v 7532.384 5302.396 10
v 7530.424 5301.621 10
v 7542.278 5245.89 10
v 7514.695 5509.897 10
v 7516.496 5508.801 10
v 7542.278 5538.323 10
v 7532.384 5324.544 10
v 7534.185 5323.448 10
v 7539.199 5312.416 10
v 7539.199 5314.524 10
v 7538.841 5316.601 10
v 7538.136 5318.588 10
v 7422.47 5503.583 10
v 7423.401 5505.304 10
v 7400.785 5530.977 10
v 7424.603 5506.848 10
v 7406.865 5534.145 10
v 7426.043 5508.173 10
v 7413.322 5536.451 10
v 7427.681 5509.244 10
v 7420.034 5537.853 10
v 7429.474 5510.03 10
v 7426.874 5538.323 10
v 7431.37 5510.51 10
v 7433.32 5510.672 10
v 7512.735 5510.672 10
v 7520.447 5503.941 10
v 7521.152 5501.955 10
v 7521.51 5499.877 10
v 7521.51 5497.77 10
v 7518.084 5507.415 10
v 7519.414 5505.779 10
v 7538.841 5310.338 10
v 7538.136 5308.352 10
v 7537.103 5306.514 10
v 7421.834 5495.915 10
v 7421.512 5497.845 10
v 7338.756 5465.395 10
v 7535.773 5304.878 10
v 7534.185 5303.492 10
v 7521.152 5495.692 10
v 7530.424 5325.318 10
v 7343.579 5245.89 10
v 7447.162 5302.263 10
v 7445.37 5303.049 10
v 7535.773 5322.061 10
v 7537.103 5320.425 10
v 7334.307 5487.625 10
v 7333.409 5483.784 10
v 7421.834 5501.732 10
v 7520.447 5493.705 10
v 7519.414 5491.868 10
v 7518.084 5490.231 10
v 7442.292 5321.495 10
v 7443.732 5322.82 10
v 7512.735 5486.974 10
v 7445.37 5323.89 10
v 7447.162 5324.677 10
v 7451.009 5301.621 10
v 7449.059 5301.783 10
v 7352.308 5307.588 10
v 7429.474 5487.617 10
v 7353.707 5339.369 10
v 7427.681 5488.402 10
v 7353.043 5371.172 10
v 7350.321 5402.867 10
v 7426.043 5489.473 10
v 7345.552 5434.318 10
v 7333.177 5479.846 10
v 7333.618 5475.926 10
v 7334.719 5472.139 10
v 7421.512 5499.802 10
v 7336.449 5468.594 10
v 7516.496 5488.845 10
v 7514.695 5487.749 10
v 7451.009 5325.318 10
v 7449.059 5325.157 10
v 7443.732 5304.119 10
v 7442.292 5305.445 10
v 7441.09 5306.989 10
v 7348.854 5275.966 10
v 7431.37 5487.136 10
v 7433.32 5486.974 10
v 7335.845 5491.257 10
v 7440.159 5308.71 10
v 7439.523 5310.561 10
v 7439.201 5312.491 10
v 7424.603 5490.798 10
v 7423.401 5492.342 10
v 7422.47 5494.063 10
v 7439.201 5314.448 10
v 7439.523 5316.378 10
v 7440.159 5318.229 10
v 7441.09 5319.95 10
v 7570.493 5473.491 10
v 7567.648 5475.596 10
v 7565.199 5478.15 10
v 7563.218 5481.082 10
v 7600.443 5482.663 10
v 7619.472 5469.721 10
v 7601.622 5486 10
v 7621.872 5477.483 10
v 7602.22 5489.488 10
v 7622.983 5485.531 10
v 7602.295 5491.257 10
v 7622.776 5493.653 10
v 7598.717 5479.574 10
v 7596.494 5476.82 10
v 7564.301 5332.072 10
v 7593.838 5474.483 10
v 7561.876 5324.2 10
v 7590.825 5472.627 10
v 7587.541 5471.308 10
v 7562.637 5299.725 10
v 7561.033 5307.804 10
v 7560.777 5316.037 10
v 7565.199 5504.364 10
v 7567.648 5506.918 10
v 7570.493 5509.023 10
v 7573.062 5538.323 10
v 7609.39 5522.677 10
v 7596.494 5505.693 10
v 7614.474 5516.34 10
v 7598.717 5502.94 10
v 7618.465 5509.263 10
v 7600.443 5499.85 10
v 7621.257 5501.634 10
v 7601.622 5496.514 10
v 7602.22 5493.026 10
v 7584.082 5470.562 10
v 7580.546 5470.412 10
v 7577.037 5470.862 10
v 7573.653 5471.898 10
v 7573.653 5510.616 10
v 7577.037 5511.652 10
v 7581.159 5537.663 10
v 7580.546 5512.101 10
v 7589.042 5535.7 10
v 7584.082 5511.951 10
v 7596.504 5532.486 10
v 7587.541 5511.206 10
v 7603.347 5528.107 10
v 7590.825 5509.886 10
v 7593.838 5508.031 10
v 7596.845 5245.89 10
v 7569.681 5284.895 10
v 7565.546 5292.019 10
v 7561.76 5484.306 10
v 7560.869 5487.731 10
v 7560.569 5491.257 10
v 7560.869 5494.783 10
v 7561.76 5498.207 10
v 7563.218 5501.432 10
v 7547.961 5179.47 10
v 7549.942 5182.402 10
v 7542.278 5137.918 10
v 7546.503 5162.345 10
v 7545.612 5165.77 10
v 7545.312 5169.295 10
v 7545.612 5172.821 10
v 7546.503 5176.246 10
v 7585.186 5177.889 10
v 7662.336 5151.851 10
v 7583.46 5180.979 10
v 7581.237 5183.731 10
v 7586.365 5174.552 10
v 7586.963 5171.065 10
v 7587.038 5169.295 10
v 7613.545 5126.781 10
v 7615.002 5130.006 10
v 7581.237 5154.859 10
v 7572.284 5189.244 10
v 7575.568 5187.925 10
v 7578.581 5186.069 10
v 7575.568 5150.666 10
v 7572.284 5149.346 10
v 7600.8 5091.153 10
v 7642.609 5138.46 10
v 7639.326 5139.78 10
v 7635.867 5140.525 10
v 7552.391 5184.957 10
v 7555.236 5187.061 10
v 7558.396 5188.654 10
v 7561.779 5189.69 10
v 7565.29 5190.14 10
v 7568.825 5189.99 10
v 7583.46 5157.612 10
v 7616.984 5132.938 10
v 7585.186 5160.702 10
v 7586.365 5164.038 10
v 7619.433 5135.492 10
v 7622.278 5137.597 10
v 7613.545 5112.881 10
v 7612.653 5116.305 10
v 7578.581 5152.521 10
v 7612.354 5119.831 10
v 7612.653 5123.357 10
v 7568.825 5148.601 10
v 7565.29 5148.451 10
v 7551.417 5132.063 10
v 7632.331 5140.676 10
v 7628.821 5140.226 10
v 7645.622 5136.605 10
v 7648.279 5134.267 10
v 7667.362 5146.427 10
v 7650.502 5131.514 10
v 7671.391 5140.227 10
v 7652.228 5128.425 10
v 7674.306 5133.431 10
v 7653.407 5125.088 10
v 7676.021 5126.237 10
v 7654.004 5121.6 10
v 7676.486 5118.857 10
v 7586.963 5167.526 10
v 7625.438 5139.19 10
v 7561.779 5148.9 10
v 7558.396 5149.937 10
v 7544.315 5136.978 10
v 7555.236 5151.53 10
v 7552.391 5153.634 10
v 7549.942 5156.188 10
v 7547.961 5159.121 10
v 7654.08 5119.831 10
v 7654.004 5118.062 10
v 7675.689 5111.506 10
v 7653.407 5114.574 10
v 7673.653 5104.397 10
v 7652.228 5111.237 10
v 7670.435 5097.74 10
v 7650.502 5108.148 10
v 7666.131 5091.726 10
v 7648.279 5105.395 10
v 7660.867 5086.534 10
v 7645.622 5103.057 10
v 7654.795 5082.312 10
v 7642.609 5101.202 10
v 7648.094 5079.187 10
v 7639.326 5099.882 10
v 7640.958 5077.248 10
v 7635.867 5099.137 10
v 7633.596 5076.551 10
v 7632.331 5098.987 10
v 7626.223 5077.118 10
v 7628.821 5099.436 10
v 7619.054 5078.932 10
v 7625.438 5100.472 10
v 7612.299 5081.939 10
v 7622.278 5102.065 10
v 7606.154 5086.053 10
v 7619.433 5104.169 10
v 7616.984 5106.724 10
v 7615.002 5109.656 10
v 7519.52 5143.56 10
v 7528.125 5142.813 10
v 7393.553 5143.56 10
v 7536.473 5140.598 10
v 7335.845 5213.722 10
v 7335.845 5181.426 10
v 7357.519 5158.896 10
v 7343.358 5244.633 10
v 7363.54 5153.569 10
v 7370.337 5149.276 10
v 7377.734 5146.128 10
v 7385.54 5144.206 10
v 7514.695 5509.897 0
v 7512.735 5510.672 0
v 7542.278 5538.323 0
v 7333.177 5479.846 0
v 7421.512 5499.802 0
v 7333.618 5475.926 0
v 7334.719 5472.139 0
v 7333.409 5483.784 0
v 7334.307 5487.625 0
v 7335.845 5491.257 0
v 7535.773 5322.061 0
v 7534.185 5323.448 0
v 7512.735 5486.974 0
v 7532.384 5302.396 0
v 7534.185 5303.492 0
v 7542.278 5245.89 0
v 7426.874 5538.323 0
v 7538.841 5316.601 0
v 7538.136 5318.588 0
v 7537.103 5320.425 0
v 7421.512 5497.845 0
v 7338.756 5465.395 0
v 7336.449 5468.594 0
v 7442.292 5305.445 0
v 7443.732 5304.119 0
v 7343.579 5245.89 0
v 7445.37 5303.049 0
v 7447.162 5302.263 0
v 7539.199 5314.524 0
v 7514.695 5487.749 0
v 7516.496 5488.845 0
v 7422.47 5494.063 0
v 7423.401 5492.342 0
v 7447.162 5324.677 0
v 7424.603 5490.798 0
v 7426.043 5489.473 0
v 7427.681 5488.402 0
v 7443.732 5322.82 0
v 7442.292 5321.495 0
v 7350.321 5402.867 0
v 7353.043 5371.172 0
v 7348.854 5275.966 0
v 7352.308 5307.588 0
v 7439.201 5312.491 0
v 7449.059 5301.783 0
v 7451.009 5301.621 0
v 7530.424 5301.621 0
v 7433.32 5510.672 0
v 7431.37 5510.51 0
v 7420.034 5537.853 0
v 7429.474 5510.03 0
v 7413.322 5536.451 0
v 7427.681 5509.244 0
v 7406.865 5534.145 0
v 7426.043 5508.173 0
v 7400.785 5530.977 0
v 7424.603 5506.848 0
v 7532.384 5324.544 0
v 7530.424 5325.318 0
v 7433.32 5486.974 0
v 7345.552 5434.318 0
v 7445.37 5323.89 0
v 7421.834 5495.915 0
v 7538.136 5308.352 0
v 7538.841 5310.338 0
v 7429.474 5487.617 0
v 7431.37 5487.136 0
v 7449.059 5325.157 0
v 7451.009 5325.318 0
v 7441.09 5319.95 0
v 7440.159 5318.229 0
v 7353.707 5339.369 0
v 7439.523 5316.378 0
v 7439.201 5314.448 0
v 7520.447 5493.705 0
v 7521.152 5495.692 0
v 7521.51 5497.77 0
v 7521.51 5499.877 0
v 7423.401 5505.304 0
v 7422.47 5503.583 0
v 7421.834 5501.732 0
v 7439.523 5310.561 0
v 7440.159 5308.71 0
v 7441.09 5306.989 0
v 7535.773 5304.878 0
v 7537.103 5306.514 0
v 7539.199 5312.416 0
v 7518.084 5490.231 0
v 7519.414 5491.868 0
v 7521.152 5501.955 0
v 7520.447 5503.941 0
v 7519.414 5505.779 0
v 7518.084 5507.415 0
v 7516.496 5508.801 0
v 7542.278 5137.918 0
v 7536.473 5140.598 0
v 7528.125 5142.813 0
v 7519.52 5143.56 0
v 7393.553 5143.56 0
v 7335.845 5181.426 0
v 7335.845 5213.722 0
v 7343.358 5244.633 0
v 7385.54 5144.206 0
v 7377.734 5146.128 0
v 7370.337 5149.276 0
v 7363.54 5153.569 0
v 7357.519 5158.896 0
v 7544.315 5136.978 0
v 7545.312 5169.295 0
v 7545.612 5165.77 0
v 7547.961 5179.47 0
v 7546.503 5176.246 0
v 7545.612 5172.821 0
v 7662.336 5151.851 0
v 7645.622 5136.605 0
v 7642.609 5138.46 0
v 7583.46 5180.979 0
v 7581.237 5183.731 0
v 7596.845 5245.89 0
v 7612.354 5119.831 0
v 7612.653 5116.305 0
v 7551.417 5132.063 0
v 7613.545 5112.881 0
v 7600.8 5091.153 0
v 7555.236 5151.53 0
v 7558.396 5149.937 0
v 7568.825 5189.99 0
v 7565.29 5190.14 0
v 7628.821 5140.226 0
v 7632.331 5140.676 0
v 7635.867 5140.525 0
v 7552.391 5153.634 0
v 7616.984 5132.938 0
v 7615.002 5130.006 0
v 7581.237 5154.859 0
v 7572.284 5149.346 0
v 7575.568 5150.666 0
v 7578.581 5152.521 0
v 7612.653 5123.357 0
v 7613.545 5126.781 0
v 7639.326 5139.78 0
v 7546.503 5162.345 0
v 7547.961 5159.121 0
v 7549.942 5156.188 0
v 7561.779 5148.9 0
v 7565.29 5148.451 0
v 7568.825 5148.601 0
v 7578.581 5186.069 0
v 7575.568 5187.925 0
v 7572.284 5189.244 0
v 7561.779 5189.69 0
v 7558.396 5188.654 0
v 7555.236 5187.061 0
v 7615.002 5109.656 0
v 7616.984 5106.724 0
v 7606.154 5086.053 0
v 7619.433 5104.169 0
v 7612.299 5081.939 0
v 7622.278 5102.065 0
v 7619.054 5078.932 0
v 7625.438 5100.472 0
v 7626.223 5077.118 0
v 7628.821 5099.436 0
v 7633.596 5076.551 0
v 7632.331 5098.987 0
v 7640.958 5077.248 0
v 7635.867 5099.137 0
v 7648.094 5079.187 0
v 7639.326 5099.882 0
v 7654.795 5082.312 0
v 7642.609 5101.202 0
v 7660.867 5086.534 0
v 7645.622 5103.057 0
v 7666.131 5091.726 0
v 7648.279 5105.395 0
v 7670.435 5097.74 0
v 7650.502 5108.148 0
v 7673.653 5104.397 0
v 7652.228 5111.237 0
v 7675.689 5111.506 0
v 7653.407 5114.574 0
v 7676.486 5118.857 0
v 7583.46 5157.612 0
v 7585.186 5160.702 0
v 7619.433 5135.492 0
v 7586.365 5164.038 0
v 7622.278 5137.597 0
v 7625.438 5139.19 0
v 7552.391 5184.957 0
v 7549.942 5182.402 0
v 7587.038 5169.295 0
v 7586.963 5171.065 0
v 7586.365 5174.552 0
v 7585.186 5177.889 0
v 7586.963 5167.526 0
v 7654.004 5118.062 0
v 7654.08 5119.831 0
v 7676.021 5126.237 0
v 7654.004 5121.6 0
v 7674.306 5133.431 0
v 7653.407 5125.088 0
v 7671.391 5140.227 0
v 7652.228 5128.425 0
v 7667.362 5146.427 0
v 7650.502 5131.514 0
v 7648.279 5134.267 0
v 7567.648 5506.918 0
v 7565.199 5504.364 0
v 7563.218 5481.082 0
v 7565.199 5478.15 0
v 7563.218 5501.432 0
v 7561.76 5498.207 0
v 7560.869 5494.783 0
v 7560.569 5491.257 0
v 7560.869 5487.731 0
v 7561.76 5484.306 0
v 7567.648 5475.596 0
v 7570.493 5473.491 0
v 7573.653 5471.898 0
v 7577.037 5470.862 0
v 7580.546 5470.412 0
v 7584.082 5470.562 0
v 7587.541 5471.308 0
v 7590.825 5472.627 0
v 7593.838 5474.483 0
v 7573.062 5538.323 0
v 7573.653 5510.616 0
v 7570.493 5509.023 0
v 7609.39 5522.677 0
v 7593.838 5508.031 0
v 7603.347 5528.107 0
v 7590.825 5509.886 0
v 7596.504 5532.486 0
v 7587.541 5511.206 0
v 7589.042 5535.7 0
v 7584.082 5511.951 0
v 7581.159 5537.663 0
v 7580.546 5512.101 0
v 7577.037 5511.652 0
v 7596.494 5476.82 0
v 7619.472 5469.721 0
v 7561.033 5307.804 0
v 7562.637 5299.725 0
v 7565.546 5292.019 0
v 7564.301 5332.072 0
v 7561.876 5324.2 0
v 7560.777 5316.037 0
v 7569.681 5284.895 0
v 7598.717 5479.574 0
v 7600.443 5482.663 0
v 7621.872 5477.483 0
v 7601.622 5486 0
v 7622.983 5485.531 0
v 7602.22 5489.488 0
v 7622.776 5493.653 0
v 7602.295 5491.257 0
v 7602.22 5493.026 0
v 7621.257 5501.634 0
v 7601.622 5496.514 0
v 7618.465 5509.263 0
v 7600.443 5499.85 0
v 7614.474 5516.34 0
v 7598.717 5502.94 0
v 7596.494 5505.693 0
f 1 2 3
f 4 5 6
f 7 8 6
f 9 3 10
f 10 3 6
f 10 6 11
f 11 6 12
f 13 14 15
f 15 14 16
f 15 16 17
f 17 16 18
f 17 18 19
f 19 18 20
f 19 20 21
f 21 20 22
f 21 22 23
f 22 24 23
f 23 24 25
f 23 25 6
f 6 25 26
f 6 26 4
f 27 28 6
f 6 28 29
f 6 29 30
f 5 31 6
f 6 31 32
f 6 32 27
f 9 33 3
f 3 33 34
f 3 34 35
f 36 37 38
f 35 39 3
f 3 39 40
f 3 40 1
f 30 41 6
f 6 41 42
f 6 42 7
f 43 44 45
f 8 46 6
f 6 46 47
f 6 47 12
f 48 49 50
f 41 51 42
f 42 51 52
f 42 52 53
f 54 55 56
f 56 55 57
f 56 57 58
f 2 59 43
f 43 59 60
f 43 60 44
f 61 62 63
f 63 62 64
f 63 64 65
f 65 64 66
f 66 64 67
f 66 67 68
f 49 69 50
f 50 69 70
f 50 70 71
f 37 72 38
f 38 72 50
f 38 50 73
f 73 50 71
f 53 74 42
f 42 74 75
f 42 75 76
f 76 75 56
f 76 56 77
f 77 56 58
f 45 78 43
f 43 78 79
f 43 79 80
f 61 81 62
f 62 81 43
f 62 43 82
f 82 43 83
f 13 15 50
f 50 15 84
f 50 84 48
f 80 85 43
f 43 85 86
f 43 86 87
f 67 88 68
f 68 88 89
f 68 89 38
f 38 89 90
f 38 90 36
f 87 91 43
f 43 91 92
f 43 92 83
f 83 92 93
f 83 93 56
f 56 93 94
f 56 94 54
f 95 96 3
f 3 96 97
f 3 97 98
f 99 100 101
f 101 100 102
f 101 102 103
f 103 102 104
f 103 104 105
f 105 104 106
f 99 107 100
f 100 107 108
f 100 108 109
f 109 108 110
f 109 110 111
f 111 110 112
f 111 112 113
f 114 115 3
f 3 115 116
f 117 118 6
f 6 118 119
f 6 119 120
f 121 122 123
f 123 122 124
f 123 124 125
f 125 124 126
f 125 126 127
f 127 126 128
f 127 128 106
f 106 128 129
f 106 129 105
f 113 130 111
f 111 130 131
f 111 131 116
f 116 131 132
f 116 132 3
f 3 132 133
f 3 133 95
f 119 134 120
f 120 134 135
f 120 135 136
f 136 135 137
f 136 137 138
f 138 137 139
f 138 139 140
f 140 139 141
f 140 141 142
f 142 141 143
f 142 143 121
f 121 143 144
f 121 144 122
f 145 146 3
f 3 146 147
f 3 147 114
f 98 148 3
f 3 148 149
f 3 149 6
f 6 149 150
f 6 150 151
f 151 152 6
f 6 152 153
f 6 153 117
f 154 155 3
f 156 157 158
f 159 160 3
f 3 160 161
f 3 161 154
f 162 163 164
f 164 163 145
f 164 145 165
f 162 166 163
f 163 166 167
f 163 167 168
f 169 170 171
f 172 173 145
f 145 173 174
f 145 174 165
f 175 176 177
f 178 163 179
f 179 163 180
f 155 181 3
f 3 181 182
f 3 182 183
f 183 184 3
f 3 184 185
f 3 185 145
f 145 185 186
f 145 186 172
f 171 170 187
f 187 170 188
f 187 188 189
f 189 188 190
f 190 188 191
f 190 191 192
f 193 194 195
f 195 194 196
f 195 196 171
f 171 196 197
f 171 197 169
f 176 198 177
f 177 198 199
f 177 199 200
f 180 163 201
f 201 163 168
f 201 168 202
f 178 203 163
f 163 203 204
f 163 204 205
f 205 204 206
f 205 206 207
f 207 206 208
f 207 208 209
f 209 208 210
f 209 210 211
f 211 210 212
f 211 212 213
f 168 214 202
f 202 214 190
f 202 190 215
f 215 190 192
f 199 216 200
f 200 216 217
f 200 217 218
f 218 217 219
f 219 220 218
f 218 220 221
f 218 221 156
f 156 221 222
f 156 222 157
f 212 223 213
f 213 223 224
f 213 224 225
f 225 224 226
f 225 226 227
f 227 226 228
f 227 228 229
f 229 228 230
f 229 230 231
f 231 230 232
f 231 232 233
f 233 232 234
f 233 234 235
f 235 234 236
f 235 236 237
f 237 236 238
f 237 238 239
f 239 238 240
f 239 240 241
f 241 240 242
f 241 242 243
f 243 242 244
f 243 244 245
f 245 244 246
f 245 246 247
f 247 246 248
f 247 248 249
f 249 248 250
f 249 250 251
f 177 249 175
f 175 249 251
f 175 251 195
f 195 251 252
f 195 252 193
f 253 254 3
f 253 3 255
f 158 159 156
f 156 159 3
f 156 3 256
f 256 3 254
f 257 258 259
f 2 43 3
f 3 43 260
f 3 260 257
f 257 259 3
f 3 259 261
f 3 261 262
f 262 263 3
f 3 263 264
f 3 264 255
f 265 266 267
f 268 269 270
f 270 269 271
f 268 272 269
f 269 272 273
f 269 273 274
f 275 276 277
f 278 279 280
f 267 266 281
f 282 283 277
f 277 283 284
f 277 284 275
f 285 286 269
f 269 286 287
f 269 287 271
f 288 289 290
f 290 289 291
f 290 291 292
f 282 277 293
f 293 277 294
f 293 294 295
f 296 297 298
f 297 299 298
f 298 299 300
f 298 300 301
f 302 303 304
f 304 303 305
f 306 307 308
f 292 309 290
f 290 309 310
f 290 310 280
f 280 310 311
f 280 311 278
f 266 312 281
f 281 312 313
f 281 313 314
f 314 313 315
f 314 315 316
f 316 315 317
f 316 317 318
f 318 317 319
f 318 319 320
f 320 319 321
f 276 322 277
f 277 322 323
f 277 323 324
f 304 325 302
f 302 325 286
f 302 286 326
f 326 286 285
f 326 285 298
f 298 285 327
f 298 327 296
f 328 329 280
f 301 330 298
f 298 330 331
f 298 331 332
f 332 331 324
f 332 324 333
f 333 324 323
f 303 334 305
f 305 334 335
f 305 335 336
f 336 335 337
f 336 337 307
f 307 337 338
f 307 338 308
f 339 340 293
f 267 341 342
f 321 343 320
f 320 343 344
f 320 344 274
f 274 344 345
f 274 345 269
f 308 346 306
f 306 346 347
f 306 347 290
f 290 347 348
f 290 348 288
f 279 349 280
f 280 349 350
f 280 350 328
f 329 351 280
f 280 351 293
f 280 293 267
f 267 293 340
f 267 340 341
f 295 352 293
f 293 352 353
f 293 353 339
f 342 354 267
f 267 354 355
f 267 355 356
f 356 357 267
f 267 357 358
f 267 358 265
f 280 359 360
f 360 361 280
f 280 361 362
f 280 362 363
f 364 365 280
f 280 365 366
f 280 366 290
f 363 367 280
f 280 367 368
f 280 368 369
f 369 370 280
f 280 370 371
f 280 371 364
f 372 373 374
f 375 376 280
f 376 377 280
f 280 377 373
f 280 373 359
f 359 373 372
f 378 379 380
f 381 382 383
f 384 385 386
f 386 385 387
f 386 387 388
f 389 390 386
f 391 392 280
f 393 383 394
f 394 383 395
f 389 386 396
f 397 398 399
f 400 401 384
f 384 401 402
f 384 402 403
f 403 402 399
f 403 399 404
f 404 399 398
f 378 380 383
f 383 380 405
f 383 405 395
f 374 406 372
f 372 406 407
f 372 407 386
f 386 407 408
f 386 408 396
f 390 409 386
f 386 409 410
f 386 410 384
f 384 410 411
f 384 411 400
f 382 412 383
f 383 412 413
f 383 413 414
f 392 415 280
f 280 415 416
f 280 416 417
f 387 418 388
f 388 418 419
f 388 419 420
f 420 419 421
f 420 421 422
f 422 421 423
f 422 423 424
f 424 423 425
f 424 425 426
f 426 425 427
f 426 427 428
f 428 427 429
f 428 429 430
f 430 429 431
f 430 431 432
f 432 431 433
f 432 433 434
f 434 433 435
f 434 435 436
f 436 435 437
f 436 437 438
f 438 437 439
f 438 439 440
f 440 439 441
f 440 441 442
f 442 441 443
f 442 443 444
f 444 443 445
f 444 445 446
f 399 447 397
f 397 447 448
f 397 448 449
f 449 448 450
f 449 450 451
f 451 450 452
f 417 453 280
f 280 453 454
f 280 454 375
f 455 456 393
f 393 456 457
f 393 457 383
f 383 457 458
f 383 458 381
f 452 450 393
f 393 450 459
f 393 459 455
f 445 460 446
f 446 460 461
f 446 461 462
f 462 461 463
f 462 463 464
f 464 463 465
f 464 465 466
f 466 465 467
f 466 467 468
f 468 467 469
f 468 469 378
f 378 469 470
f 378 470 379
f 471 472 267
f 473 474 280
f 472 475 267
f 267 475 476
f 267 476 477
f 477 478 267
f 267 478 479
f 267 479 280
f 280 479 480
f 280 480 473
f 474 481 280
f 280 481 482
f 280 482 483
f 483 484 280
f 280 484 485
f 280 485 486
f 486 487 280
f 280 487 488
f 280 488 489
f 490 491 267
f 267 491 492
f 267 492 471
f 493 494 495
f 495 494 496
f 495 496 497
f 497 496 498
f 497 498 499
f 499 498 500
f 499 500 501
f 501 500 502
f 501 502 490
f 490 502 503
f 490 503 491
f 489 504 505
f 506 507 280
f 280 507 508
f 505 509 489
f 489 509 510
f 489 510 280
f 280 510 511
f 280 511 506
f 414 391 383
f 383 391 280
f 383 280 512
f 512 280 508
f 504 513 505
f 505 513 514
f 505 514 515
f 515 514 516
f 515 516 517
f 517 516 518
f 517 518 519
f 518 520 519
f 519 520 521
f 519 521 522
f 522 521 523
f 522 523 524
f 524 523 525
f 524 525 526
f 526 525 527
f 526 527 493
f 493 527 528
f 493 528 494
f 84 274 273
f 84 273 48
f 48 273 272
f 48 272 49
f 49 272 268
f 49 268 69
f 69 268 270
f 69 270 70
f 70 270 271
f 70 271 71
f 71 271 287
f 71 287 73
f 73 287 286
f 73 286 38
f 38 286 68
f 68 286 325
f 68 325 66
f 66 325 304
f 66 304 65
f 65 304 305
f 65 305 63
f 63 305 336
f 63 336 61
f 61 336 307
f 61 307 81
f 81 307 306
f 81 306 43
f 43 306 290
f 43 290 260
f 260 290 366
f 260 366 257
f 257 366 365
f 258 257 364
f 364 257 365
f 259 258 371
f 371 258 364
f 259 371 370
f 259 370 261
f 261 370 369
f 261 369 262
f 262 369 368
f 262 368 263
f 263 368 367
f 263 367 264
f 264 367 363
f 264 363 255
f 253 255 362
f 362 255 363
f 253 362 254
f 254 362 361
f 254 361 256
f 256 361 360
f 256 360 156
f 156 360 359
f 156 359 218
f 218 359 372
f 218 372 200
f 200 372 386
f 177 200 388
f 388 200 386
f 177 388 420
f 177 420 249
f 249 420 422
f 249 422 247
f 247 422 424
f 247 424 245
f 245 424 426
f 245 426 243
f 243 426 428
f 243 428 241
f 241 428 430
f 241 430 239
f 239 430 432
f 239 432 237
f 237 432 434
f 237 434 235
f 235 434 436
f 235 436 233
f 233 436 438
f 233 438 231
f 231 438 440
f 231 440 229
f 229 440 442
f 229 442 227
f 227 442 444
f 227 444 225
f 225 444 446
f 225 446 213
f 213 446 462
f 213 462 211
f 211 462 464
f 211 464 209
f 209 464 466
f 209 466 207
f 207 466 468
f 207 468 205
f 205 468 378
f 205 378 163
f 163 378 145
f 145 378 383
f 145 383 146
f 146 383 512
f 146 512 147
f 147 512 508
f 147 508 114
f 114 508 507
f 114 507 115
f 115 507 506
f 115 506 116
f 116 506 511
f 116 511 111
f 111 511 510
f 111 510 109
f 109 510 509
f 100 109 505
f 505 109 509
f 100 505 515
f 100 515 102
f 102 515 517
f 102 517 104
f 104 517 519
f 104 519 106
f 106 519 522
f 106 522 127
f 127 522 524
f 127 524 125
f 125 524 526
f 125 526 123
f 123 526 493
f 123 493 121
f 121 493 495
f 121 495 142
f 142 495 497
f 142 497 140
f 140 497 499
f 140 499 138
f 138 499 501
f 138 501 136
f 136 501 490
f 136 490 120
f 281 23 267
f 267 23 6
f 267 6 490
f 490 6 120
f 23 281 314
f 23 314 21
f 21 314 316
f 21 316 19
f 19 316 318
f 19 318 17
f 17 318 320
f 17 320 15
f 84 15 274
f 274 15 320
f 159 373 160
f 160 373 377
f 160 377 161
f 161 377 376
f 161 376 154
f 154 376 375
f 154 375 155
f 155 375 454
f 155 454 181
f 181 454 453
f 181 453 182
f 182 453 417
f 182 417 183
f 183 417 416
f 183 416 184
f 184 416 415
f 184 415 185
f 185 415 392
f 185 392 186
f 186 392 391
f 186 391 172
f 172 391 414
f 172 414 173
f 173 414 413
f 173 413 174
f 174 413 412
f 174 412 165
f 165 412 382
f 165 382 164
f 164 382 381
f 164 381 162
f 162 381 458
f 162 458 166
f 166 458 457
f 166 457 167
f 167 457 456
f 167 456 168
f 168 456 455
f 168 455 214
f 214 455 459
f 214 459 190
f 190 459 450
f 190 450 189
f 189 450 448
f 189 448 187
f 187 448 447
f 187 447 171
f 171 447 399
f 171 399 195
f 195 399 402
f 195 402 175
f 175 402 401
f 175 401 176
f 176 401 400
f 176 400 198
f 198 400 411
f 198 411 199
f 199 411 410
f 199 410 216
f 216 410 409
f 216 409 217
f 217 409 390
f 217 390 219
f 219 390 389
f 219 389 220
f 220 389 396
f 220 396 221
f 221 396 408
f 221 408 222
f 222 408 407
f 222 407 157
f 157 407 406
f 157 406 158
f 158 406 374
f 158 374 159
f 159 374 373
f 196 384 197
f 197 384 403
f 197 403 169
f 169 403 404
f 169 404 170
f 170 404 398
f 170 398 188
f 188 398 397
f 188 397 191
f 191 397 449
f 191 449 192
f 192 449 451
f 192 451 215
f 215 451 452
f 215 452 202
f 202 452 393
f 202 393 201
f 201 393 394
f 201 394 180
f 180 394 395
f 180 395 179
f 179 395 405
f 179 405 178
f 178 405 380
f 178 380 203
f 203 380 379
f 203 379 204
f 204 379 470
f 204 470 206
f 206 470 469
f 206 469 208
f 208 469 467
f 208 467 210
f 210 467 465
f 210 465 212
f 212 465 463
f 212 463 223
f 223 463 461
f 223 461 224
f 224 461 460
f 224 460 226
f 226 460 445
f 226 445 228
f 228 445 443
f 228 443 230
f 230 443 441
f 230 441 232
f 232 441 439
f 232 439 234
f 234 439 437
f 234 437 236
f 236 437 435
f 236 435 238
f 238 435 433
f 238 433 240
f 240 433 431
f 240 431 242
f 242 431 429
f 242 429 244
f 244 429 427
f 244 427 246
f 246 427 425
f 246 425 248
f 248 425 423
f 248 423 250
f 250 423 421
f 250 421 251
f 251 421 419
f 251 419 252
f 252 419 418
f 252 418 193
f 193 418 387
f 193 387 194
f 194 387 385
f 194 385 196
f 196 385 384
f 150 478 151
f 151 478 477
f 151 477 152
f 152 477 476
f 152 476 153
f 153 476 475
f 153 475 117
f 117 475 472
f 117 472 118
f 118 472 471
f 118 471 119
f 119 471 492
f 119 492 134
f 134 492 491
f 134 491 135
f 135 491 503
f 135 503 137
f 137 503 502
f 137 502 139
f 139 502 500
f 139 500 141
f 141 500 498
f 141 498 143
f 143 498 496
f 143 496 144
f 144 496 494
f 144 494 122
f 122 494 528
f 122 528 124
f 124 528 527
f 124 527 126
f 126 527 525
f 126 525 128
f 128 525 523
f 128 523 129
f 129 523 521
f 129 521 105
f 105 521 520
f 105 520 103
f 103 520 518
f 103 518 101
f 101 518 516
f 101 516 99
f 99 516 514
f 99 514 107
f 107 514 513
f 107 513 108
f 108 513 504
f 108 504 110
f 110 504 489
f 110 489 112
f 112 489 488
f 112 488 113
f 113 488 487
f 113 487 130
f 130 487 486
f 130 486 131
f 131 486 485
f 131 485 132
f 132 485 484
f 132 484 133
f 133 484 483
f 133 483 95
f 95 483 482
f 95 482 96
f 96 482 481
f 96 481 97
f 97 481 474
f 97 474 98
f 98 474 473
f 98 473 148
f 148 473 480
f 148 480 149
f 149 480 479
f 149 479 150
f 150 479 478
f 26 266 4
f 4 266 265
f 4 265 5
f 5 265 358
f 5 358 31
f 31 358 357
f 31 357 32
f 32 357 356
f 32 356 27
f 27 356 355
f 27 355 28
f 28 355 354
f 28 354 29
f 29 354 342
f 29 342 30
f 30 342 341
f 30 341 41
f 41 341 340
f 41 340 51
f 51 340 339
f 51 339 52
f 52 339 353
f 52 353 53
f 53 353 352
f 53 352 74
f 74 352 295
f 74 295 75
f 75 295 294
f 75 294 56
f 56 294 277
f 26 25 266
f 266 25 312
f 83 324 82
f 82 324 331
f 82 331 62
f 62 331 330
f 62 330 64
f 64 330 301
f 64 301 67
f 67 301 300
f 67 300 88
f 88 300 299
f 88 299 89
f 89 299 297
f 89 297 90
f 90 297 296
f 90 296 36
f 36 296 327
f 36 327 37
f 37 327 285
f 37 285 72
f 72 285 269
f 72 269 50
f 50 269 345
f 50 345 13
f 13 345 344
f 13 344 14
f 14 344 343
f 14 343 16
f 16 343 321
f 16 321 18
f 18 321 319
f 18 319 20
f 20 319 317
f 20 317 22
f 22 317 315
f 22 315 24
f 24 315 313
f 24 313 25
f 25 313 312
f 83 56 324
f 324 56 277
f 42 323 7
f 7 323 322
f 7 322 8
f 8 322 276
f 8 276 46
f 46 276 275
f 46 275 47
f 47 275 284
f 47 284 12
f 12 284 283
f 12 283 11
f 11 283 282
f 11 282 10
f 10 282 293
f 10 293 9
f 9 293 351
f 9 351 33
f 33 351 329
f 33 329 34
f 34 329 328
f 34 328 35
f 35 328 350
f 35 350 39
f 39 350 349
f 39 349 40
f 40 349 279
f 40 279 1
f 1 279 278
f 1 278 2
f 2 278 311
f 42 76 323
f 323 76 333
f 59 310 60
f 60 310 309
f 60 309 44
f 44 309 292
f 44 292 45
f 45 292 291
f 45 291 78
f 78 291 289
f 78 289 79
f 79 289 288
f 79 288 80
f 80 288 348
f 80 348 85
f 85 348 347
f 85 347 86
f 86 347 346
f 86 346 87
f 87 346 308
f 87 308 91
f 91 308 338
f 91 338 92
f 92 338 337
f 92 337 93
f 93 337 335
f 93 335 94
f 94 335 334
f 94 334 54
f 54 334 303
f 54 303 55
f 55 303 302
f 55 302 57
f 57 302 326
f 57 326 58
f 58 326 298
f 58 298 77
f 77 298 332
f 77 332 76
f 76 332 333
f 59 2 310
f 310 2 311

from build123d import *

# Parameters (mm, degrees)
ESBO_O1_R                = 20.863274014
RESSALTO_EXTRUS_O1_DEPTH = 10


with BuildPart() as part:
    # Esboço1 → Ressalto-extrusão1 (new body)
    with BuildSketch(Plane.XY):
        with BuildLine():
            Line((7335.845216731, 5491.256809223), (7400.784408374, 5530.976897315))
            ThreePointArc((7400.784408374, 5530.976897315), (7413.321768246, 5536.451480894), (7426.873657559, 5538.323045473))
            Line((7426.873657559, 5538.323045473), (7573.061256946, 5538.323045473))
            ThreePointArc((7573.061256946, 5538.323045473), (7614.474439212, 5516.339974903), (7619.472065145, 5469.720978859))
            Line((7619.472065145, 5469.720978859), (7564.300408584, 5332.071693766))
            ThreePointArc((7564.300408584, 5332.071693766), (7561.033258012, 5307.80390458), (7569.680866385, 5284.894981989))
            Line((7569.680866385, 5284.894981989), (7662.336085762, 5151.851296041))
            ThreePointArc((7662.336085762, 5151.851296041), (7663.61020686, 5089.017265945), (7600.799568851, 5091.153261173))
            Line((7600.799568851, 5091.153261173), (7551.417263378, 5132.063170982))
            ThreePointArc((7551.417263378, 5132.063170982), (7536.472634142, 5140.597670031), (7519.519540605, 5143.559466201))
            Line((7519.519540605, 5143.559466201), (7393.552869473, 5143.559466201))
            ThreePointArc((7393.552869473, 5143.559466201), (7373.972219734, 5147.552964967), (7357.519382018, 5158.895539969))
            Line((7357.519382018, 5158.895539969), (7335.845216731, 5181.426044959))
            Line((7335.845216731, 5181.426044959), (7335.845216731, 5213.722321046))
            ThreePointArc((7335.845216731, 5213.722321046), (7353.706243942, 5339.368656723), (7338.756279232, 5465.394513266))
            ThreePointArc((7338.756279232, 5465.394513266), (7333.313540231, 5477.876860759), (7335.845216731, 5491.256809223))
        make_face()
        with Locations((7566.174846652, 5169.295330687)):
            Circle(ESBO_O1_R, mode=Mode.SUBTRACT)
        with Locations((7633.216444383, 5119.830887551)):
            Circle(ESBO_O1_R, mode=Mode.SUBTRACT)
        with Locations((7581.43197041, 5491.256809223)):
            Circle(ESBO_O1_R, mode=Mode.SUBTRACT)
        with BuildLine():
            Line((7512.734775832, 5486.974409199), (7433.320588265, 5486.974409199))
            ThreePointArc((7433.320588265, 5486.974409199), (7421.471766691, 5498.823230773), (7433.320588265, 5510.672052347))
            Line((7433.320588265, 5510.672052347), (7512.734775832, 5510.672052347))
            ThreePointArc((7512.734775832, 5510.672052347), (7521.55530344, 5498.823230773), (7512.734775832, 5486.974409199))
        make_face(mode=Mode.SUBTRACT)
        with BuildLine():
            Line((7530.423638246, 5301.620805578), (7451.009450679, 5301.620805578))
            ThreePointArc((7451.009450679, 5301.620805578), (7439.160629105, 5313.469627152), (7451.009450679, 5325.318448726))
            Line((7451.009450679, 5325.318448726), (7530.423638246, 5325.318448726))
            ThreePointArc((7530.423638246, 5325.318448726), (7539.244165855, 5313.469627152), (7530.423638246, 5301.620805578))
        make_face(mode=Mode.SUBTRACT)
    extrude(amount=RESSALTO_EXTRUS_O1_DEPTH)


solid = part.part
